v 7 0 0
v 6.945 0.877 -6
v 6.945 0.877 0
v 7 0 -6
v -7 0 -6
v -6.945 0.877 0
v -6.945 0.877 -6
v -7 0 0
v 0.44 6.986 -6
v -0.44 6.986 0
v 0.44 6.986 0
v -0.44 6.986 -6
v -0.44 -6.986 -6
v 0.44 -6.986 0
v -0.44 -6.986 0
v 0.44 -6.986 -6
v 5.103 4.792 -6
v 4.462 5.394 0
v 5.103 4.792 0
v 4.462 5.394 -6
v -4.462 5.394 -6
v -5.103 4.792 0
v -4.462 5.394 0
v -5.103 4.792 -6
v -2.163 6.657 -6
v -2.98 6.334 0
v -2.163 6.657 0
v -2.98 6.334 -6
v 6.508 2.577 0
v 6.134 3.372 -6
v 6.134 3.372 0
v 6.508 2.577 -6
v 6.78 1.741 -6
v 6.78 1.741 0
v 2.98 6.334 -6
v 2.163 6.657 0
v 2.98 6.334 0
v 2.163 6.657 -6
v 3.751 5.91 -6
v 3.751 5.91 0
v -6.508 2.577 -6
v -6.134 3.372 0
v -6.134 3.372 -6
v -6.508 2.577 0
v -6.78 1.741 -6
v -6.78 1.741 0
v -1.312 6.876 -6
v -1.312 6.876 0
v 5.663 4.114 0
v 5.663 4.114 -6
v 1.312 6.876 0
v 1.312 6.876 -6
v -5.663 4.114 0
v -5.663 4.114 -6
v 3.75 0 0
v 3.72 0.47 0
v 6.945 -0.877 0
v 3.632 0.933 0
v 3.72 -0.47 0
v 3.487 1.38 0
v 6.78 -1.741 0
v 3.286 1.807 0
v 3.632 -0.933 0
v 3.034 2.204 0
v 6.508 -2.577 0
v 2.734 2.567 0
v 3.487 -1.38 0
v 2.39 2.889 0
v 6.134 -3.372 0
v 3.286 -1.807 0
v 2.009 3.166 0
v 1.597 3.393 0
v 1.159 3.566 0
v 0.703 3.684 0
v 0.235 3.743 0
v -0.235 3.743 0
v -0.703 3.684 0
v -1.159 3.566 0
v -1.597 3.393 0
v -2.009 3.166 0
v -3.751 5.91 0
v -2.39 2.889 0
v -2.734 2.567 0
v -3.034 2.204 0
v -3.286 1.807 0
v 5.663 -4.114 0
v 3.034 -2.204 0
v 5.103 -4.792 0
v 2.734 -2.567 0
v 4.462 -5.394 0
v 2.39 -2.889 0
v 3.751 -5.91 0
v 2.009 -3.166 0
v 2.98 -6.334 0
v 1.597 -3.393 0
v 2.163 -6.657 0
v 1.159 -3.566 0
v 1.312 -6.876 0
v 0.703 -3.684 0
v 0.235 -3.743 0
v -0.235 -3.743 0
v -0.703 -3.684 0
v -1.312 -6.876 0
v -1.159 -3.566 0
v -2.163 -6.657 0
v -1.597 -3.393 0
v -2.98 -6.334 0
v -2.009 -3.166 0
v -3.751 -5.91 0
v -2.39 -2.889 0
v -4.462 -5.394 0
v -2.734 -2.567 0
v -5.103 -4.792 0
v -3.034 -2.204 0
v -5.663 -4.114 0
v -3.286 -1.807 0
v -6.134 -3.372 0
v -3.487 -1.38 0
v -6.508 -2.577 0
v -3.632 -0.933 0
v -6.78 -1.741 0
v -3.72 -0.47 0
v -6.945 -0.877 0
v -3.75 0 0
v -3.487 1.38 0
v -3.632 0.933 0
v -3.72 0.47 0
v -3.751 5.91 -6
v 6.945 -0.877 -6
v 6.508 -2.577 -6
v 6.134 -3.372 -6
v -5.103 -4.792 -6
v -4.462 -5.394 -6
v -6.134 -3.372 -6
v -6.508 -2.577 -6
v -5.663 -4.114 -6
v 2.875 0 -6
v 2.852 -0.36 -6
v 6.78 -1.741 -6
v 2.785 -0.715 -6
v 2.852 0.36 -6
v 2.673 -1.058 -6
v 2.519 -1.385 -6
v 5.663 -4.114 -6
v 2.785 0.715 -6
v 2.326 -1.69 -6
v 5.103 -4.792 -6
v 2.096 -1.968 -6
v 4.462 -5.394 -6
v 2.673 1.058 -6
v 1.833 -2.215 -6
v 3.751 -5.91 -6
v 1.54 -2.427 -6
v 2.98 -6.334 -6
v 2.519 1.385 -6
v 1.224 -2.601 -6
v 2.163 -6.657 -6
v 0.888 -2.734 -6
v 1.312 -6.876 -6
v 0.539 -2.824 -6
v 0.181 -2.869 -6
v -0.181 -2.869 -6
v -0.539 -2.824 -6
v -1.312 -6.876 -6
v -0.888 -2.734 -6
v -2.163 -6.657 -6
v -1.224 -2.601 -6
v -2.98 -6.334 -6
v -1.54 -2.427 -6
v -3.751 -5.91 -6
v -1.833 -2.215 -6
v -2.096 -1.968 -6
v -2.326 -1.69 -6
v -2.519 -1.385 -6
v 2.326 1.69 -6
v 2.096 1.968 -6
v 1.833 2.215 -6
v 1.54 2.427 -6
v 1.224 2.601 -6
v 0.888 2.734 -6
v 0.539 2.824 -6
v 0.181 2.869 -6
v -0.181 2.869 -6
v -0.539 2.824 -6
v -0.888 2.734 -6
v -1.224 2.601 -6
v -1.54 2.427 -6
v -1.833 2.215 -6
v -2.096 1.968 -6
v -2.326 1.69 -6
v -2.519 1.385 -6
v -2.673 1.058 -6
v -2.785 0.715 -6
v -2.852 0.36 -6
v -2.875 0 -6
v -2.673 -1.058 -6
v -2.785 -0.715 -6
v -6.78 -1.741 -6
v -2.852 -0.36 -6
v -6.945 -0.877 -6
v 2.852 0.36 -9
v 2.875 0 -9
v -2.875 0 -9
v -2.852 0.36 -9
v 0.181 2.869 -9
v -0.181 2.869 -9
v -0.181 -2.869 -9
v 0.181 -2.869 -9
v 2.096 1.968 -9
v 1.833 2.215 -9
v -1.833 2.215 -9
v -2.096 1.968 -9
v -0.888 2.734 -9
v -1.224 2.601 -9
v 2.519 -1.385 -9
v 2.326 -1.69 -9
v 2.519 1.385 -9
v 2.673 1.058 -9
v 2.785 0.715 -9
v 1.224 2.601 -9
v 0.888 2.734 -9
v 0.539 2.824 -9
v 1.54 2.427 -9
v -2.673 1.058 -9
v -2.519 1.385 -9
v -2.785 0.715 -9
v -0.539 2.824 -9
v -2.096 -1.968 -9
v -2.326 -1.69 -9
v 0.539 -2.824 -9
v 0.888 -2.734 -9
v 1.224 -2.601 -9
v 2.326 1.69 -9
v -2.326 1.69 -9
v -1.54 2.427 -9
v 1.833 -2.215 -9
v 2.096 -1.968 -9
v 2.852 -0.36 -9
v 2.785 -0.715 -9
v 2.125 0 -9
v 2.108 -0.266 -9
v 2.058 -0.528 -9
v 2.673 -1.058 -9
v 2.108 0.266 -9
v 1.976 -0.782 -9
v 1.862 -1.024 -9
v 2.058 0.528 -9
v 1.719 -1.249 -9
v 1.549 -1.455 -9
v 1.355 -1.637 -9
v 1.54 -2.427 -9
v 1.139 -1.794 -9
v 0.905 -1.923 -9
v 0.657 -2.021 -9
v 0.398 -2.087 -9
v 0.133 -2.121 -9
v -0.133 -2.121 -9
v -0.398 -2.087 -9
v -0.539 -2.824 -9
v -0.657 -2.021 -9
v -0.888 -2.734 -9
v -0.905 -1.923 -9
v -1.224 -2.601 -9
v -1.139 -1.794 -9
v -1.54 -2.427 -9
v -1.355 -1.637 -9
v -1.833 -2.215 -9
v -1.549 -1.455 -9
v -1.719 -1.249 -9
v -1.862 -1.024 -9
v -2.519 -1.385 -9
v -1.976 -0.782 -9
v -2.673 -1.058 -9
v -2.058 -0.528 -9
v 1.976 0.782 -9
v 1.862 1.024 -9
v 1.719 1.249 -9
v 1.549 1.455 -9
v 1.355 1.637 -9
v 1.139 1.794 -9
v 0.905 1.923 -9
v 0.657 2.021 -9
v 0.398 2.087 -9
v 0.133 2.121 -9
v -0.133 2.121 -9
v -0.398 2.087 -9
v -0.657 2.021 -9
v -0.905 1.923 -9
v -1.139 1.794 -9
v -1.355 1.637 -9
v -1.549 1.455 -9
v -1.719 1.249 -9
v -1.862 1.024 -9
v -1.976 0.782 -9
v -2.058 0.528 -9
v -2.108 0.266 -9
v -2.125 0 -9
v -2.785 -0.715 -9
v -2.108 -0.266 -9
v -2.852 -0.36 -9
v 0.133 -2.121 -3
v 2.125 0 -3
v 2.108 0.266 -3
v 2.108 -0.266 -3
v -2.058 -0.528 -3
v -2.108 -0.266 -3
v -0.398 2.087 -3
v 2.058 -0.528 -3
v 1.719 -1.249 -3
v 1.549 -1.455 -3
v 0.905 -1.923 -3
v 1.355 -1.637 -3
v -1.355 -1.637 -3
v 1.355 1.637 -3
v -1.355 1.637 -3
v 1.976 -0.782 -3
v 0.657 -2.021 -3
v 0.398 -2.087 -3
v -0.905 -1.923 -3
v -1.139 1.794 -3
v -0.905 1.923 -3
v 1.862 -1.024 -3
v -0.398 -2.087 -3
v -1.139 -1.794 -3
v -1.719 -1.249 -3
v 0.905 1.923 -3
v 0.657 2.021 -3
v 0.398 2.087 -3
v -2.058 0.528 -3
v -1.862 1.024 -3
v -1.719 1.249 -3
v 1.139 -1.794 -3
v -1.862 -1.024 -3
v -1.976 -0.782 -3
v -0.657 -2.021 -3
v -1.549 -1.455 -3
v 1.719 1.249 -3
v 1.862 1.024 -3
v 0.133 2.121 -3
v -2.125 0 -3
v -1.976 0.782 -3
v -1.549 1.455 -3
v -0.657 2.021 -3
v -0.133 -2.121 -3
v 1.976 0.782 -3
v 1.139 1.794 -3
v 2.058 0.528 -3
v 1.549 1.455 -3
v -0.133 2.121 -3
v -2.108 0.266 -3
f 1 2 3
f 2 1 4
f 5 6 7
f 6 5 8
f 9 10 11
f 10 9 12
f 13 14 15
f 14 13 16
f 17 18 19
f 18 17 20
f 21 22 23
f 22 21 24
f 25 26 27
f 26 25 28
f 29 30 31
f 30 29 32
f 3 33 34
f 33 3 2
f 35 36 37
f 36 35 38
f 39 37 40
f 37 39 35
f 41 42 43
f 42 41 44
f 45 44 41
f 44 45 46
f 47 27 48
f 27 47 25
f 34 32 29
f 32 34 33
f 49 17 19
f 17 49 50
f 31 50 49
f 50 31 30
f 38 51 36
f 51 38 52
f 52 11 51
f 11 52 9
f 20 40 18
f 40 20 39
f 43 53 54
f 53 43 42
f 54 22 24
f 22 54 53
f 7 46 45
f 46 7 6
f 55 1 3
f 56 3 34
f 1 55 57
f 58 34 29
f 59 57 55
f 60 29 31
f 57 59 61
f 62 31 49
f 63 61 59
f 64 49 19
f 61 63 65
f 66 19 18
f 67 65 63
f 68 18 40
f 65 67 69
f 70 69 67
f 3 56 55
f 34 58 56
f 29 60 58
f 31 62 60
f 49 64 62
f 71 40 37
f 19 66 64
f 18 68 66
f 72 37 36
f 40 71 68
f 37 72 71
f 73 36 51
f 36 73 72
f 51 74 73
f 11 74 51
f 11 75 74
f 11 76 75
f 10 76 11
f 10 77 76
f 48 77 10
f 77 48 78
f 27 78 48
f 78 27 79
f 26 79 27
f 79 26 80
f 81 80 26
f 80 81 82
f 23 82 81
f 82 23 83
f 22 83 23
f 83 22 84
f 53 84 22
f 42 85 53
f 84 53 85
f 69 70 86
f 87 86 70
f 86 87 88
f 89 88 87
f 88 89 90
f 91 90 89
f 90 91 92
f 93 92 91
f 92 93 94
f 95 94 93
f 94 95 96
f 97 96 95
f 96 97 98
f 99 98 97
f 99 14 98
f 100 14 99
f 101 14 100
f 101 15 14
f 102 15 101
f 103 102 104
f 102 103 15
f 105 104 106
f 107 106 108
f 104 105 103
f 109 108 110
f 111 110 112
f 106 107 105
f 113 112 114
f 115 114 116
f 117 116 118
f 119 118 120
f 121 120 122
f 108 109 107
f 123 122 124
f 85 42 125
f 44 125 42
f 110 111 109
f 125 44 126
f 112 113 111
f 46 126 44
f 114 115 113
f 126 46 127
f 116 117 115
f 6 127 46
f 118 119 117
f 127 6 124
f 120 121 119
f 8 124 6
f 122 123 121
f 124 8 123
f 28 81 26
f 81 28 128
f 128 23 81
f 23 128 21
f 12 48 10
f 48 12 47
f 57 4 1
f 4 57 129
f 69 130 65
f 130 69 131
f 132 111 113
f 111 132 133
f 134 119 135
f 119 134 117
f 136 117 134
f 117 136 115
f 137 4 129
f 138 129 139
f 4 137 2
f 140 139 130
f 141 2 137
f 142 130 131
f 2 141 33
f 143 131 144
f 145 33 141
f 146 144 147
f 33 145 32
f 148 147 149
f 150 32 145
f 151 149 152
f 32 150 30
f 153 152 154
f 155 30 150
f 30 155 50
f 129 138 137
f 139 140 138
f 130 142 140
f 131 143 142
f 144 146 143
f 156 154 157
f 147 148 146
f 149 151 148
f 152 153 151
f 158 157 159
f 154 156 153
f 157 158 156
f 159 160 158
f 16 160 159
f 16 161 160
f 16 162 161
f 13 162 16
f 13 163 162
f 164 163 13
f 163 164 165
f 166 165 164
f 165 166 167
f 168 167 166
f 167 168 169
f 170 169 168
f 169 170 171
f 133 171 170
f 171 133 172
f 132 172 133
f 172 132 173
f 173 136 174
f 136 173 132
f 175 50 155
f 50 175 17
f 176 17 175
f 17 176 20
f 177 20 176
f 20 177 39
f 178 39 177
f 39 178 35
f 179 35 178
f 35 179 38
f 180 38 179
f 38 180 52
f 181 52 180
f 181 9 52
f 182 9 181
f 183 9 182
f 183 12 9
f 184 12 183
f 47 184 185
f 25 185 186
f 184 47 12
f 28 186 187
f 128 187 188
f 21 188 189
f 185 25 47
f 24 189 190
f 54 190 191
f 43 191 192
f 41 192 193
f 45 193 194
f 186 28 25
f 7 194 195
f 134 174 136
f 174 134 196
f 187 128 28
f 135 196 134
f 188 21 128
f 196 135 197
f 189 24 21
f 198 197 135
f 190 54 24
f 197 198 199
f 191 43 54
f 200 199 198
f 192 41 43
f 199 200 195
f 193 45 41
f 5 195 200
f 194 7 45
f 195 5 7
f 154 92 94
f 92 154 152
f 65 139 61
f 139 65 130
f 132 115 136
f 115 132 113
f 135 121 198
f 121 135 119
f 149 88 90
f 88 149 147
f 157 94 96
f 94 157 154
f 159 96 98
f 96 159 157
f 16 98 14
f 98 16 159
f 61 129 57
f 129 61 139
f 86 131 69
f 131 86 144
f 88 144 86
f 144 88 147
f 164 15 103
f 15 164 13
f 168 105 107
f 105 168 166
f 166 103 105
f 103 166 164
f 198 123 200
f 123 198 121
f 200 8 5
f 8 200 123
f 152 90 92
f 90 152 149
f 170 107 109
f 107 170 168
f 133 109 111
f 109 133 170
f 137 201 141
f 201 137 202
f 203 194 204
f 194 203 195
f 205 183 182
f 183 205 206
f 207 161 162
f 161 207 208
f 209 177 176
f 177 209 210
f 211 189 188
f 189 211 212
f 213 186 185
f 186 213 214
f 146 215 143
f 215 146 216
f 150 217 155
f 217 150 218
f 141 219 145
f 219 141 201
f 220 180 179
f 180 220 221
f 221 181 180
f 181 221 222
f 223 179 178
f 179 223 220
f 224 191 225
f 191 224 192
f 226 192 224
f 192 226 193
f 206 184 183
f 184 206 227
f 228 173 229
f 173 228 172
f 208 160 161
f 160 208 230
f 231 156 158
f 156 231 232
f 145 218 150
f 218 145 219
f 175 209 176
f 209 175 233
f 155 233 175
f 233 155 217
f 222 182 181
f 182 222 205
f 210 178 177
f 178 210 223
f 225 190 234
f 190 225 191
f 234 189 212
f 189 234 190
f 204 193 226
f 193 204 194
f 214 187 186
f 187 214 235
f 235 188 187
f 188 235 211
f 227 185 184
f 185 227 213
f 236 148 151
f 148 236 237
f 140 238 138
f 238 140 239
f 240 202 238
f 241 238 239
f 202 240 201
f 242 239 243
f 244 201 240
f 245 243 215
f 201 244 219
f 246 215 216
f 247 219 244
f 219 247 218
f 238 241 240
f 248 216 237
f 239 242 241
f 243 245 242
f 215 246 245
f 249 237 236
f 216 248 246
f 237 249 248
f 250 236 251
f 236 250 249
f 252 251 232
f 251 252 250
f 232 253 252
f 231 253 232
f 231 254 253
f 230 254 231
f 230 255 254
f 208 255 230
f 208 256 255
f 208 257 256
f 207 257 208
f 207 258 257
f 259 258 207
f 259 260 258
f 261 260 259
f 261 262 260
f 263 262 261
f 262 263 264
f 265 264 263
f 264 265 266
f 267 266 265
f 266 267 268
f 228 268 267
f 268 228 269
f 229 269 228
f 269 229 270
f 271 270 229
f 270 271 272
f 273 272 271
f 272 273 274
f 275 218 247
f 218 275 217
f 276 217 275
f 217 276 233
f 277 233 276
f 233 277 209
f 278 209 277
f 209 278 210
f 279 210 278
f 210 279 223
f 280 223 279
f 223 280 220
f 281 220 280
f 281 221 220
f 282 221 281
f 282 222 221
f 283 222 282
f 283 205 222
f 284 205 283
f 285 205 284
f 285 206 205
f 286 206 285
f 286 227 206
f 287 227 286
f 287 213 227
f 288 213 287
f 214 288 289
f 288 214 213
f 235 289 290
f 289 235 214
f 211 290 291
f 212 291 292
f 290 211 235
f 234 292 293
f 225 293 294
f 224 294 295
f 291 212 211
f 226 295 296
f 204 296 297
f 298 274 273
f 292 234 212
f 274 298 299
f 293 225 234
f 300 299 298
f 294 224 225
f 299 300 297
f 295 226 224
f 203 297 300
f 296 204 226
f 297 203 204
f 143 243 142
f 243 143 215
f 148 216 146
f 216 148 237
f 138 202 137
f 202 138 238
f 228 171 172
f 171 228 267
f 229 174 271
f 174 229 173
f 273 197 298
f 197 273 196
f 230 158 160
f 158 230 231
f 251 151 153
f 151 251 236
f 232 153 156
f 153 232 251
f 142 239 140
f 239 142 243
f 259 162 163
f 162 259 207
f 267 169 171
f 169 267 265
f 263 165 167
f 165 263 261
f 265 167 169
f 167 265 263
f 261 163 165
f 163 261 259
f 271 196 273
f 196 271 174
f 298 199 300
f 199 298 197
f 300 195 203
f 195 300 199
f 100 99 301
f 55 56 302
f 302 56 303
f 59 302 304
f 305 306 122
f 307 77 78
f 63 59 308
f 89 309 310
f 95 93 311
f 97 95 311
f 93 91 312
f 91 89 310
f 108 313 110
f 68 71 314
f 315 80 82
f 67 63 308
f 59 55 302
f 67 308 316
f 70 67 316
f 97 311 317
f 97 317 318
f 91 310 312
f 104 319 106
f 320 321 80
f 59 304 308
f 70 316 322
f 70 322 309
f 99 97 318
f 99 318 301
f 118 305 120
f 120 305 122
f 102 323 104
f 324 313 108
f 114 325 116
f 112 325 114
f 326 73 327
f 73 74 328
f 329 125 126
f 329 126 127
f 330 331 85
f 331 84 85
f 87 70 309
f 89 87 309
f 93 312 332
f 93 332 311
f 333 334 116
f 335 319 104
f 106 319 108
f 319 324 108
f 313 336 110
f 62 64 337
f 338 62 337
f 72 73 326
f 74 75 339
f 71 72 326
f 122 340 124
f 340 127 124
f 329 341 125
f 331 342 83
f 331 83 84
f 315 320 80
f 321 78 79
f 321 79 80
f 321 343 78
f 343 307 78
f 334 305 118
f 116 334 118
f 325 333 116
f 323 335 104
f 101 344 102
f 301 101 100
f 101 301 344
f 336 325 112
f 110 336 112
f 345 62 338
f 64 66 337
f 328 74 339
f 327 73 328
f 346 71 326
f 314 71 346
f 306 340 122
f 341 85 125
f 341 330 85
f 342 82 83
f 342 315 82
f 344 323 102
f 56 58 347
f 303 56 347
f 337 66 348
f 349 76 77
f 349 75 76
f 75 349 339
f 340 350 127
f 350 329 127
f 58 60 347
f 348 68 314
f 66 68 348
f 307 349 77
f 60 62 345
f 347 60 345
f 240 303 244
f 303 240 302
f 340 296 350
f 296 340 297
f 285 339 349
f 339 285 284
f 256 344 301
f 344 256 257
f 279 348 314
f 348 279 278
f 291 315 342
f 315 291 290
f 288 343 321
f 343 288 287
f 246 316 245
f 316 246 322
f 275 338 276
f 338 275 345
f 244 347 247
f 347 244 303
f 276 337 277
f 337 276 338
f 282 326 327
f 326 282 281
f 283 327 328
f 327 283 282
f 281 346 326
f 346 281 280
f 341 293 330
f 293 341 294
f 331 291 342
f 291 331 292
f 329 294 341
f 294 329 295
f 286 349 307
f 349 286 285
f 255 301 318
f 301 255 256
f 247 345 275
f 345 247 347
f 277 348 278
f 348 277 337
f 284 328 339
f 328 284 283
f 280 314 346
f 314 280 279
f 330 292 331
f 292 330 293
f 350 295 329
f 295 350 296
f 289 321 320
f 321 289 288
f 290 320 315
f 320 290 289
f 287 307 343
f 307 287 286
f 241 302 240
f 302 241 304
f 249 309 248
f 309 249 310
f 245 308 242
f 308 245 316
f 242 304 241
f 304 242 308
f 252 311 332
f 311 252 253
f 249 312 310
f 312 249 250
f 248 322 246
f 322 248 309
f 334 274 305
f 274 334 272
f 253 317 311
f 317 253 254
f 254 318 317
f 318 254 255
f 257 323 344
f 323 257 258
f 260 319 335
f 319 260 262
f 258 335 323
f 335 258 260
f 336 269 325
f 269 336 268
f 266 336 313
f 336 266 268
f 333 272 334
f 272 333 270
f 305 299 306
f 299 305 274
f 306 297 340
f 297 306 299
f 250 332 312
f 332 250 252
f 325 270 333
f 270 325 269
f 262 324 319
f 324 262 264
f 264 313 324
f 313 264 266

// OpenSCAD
$fn = 50;


difference() {
	union() {
		translate(v = [0, 0, -6.0000000000]) {
			cylinder(h = 6, r = 7.0000000000);
		}
		translate(v = [0, 0, -9.0000000000]) {
			cylinder(h = 9, r = 2.8750000000);
		}
	}
	union() {
		translate(v = [0, 0, 0]) {
			rotate(a = [0, 0, 0]) {
				difference() {
					union() {
						translate(v = [0, 0, -9.0000000000]) {
							cylinder(h = 9, r = 2.0000000000);
						}
						translate(v = [0, 0, -3]) {
							cylinder(h = 3, r1 = 2.1250000000, r2 = 3.7500000000);
						}
						translate(v = [0, 0, -9.0000000000]) {
							cylinder(h = 9, r = 2.1250000000);
						}
						translate(v = [0, 0, -9.0000000000]) {
							cylinder(h = 9, r = 2.0000000000);
						}
					}
					union();
				}
			}
		}
	}
}
